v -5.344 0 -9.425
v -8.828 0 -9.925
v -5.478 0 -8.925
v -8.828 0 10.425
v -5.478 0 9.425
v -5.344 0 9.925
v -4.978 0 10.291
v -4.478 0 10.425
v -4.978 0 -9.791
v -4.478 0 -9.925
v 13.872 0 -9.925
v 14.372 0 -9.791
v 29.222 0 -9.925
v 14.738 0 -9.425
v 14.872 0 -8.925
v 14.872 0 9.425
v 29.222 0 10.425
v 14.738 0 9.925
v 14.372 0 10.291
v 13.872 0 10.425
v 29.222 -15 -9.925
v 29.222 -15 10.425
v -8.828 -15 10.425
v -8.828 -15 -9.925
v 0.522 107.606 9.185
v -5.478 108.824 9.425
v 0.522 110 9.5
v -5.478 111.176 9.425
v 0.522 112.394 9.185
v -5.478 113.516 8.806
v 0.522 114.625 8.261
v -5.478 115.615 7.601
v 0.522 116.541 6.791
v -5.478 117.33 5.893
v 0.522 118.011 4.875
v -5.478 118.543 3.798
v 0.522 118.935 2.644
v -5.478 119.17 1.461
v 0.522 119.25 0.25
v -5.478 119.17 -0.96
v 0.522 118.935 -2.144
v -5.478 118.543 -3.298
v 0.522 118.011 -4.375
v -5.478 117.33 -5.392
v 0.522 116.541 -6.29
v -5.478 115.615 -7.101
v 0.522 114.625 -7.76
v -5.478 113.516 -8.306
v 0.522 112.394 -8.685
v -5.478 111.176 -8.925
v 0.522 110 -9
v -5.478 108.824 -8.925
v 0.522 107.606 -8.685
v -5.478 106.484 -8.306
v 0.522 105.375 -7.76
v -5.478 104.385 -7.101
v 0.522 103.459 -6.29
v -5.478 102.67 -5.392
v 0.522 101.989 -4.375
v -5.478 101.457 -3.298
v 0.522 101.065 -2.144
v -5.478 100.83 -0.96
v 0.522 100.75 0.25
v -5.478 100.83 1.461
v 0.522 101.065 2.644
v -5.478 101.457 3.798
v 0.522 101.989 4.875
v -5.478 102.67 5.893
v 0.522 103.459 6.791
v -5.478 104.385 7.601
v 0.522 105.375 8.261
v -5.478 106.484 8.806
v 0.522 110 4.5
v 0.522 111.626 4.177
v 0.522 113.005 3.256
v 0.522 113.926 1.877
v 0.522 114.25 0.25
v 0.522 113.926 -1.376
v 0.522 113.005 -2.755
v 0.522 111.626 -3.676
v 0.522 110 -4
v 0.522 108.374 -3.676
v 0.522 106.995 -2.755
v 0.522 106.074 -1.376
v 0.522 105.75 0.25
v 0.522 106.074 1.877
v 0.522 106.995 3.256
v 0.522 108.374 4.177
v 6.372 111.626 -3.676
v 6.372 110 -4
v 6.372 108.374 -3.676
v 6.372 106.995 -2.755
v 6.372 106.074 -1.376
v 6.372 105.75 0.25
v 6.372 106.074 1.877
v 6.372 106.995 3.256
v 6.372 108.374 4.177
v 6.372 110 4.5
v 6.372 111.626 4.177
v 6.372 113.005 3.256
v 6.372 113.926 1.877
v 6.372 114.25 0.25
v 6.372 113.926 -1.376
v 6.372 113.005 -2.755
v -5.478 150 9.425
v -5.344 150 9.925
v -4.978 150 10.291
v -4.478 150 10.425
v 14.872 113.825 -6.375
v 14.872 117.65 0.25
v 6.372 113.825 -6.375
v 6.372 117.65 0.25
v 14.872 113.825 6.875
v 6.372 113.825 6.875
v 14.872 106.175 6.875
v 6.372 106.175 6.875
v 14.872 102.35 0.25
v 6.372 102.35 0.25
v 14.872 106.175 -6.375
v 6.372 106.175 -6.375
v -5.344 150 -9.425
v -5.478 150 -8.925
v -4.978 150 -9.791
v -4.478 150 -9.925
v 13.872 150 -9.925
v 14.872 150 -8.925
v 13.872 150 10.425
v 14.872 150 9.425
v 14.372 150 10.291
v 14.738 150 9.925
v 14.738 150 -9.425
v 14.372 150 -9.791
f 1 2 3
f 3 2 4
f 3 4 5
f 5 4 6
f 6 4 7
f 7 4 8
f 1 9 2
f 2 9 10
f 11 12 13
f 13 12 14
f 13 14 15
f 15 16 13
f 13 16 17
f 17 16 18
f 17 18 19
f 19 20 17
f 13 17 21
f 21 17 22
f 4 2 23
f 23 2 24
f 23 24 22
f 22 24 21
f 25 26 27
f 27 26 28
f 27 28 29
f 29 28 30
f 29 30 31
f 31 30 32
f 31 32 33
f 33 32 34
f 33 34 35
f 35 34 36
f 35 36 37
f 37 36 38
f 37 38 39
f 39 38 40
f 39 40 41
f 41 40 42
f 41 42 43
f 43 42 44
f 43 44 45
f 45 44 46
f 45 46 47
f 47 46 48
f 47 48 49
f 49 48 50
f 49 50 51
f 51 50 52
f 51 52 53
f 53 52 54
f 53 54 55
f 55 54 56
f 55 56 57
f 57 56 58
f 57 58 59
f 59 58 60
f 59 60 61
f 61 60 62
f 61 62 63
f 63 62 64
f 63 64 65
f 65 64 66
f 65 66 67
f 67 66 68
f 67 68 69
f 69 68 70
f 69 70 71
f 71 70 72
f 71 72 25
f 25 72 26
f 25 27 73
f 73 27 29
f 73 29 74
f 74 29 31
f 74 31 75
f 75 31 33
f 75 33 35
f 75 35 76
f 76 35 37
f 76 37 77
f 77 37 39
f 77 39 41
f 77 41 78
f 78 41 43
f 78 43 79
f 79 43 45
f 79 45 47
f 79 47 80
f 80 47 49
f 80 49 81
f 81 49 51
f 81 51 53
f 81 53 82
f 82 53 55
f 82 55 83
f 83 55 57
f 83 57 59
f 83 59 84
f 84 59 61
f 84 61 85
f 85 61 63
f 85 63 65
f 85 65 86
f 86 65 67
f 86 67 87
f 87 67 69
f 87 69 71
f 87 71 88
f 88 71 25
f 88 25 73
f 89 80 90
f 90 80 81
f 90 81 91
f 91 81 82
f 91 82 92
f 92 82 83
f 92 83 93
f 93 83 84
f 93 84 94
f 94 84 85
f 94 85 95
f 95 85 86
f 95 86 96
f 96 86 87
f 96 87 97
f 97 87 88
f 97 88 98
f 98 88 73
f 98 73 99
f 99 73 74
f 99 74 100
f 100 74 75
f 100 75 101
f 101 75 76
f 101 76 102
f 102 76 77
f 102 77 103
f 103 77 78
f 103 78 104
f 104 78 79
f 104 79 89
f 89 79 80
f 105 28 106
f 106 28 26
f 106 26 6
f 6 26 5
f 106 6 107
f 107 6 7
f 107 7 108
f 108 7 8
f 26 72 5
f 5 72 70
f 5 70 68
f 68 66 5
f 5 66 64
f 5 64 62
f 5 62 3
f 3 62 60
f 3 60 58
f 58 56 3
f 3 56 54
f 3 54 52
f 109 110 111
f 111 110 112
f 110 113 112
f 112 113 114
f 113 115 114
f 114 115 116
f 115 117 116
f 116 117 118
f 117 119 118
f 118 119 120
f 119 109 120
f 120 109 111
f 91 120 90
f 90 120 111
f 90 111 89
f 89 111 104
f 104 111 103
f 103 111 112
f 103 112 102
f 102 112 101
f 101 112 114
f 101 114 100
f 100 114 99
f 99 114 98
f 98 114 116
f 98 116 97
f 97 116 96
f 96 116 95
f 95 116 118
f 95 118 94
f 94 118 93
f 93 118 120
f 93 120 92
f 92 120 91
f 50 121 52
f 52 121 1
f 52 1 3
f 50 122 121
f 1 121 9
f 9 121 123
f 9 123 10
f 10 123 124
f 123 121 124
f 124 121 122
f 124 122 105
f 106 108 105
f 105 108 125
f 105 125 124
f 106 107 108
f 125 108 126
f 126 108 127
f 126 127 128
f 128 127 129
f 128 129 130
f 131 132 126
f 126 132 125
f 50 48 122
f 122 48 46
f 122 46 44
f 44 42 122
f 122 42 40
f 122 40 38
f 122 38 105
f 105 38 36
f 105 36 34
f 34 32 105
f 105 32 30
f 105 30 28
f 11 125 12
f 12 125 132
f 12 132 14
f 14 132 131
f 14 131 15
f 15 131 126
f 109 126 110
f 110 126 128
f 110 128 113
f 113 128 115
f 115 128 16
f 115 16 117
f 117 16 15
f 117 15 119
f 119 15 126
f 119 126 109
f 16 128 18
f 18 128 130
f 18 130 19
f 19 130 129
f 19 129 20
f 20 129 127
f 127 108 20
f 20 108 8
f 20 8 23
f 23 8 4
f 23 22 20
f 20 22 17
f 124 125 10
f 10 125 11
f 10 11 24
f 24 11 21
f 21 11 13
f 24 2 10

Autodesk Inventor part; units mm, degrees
ref_plane "YZ Plane" through (0, 0, 0) normal (1, 0, 0) x (0, 1, 0)
ref_plane "XZ Plane" through (0, 0, 0) normal (0, 1, 0) x (-1, 0, 0)
ref_plane "XY Plane" through (0, 0, 0) normal (0, 0, 1) x (1, 0, 0)
sketch "Sketch1" plane through (0, 0, 0) normal (0, 1, 0) x (-1, 0, 0)
  line L0 (5.4777, 10.4253) -> (-14.8723, 10.4253)
  line L1 (-14.8723, 10.4253) -> (-14.8723, -9.9247)
  line L2 (-14.8723, -9.9247) -> (5.4777, -9.9247)
  line L3 (5.4777, -9.9247) -> (5.4777, 10.4253)
  point P0 (0, 0)
  dimension "d0" = 20.35
  dimension "d1" = 20.35
extrude "Extrusion1" add sketch "Sketch1" along normal blind 150
fillet "Fillet1" radius 1 4 edges at (14.8723, 75, 10.4253) (14.8723, 75, -9.9247) (-5.4777, 75, 10.4253) (-5.4777, 75, -9.9247)
sketch "Sketch2" plane through (14.8723, 0, 9.4253) normal (1, 0, 0) x (0, 0, -1)
  line L0 (9.175, 102.3501) -> (2.55, 106.1751)
  line L1 (2.55, 106.1751) -> (2.55, 113.8249)
  line L2 (2.55, 113.8249) -> (9.175, 117.6499)
  line L3 (9.175, 117.6499) -> (15.8, 113.8249)
  line L4 (15.8, 113.8249) -> (15.8, 106.1751)
  line L5 (15.8, 106.1751) -> (9.175, 102.3501)
  line L6 (18.35, 150) -> (18.35, 0) projected
  line L7 (0, 150) -> (18.35, 150) projected
  line L8 (0, 0) -> (0, 150) projected
  line L9 (0, 0) -> (18.35, 0) projected
  line L10 (-1, 150) -> (-1, 0) projected
  point P0 (9.4253, 0)
  point P1 (9.175, 110)
  dimension "d5" = 13.25
  dimension "d6" = 0
  dimension "d37" = 110
  dimension "d39" = 40
  dimension "d40" = 10.175
extrude "Extrusion2" cut sketch "Sketch2" against normal blind 8.5 contours L0 L1 L2 L3 L4 L5
sketch "Sketch3" plane through (-5.4777, 0, -8.9247) normal (-1, 0, 0) x (0, 0, 1)
  circle A0 centre (9.175, 110) radius 9.25
  line L0 (0, 150) -> (18.35, 150) projected
  line L1 (19.35, 0) -> (19.35, 150) projected
  line L2 (0, 0) -> (18.35, 0) projected
  point P0 (8.9247, 0)
  dimension "d12" = 18.5
  dimension "d13" = 10.175
  dimension "d38" = 110
hole "Hole1" at (-5.4777, 110, 0.2503) direction (1, 0, 0) diameter 8.5 depth 40 counterbore diameter 18.5 counterbore depth 6
sketch "Sketch4" plane through (0, 0, 0) normal (0, -1, 0) x (1, 0, 0)
  line L0 (29.2223, -9.9247) -> (-8.8277, -9.9247)
  line L1 (-8.8277, -9.9247) -> (-8.8277, 10.4253)
  line L2 (-8.8277, 10.4253) -> (29.2223, 10.4253)
  line L3 (29.2223, 10.4253) -> (29.2223, -9.9247)
  line L4 (13.8723, -9.9247) -> (-4.4777, -9.9247) projected
  line L5 (14.8723, 9.4253) -> (14.8723, -8.9247) projected
  line L6 (-5.4777, -8.9247) -> (-5.4777, 9.4253) projected
  point P0 (0, 0)
  dimension "d22" = 20.35
  dimension "d23" = 0
  dimension "d25" = 3.35
  dimension "d36" = 14.35
extrude "Extrusion3" add sketch "Sketch4" along normal blind 15
properties part number "shaft4V1"
